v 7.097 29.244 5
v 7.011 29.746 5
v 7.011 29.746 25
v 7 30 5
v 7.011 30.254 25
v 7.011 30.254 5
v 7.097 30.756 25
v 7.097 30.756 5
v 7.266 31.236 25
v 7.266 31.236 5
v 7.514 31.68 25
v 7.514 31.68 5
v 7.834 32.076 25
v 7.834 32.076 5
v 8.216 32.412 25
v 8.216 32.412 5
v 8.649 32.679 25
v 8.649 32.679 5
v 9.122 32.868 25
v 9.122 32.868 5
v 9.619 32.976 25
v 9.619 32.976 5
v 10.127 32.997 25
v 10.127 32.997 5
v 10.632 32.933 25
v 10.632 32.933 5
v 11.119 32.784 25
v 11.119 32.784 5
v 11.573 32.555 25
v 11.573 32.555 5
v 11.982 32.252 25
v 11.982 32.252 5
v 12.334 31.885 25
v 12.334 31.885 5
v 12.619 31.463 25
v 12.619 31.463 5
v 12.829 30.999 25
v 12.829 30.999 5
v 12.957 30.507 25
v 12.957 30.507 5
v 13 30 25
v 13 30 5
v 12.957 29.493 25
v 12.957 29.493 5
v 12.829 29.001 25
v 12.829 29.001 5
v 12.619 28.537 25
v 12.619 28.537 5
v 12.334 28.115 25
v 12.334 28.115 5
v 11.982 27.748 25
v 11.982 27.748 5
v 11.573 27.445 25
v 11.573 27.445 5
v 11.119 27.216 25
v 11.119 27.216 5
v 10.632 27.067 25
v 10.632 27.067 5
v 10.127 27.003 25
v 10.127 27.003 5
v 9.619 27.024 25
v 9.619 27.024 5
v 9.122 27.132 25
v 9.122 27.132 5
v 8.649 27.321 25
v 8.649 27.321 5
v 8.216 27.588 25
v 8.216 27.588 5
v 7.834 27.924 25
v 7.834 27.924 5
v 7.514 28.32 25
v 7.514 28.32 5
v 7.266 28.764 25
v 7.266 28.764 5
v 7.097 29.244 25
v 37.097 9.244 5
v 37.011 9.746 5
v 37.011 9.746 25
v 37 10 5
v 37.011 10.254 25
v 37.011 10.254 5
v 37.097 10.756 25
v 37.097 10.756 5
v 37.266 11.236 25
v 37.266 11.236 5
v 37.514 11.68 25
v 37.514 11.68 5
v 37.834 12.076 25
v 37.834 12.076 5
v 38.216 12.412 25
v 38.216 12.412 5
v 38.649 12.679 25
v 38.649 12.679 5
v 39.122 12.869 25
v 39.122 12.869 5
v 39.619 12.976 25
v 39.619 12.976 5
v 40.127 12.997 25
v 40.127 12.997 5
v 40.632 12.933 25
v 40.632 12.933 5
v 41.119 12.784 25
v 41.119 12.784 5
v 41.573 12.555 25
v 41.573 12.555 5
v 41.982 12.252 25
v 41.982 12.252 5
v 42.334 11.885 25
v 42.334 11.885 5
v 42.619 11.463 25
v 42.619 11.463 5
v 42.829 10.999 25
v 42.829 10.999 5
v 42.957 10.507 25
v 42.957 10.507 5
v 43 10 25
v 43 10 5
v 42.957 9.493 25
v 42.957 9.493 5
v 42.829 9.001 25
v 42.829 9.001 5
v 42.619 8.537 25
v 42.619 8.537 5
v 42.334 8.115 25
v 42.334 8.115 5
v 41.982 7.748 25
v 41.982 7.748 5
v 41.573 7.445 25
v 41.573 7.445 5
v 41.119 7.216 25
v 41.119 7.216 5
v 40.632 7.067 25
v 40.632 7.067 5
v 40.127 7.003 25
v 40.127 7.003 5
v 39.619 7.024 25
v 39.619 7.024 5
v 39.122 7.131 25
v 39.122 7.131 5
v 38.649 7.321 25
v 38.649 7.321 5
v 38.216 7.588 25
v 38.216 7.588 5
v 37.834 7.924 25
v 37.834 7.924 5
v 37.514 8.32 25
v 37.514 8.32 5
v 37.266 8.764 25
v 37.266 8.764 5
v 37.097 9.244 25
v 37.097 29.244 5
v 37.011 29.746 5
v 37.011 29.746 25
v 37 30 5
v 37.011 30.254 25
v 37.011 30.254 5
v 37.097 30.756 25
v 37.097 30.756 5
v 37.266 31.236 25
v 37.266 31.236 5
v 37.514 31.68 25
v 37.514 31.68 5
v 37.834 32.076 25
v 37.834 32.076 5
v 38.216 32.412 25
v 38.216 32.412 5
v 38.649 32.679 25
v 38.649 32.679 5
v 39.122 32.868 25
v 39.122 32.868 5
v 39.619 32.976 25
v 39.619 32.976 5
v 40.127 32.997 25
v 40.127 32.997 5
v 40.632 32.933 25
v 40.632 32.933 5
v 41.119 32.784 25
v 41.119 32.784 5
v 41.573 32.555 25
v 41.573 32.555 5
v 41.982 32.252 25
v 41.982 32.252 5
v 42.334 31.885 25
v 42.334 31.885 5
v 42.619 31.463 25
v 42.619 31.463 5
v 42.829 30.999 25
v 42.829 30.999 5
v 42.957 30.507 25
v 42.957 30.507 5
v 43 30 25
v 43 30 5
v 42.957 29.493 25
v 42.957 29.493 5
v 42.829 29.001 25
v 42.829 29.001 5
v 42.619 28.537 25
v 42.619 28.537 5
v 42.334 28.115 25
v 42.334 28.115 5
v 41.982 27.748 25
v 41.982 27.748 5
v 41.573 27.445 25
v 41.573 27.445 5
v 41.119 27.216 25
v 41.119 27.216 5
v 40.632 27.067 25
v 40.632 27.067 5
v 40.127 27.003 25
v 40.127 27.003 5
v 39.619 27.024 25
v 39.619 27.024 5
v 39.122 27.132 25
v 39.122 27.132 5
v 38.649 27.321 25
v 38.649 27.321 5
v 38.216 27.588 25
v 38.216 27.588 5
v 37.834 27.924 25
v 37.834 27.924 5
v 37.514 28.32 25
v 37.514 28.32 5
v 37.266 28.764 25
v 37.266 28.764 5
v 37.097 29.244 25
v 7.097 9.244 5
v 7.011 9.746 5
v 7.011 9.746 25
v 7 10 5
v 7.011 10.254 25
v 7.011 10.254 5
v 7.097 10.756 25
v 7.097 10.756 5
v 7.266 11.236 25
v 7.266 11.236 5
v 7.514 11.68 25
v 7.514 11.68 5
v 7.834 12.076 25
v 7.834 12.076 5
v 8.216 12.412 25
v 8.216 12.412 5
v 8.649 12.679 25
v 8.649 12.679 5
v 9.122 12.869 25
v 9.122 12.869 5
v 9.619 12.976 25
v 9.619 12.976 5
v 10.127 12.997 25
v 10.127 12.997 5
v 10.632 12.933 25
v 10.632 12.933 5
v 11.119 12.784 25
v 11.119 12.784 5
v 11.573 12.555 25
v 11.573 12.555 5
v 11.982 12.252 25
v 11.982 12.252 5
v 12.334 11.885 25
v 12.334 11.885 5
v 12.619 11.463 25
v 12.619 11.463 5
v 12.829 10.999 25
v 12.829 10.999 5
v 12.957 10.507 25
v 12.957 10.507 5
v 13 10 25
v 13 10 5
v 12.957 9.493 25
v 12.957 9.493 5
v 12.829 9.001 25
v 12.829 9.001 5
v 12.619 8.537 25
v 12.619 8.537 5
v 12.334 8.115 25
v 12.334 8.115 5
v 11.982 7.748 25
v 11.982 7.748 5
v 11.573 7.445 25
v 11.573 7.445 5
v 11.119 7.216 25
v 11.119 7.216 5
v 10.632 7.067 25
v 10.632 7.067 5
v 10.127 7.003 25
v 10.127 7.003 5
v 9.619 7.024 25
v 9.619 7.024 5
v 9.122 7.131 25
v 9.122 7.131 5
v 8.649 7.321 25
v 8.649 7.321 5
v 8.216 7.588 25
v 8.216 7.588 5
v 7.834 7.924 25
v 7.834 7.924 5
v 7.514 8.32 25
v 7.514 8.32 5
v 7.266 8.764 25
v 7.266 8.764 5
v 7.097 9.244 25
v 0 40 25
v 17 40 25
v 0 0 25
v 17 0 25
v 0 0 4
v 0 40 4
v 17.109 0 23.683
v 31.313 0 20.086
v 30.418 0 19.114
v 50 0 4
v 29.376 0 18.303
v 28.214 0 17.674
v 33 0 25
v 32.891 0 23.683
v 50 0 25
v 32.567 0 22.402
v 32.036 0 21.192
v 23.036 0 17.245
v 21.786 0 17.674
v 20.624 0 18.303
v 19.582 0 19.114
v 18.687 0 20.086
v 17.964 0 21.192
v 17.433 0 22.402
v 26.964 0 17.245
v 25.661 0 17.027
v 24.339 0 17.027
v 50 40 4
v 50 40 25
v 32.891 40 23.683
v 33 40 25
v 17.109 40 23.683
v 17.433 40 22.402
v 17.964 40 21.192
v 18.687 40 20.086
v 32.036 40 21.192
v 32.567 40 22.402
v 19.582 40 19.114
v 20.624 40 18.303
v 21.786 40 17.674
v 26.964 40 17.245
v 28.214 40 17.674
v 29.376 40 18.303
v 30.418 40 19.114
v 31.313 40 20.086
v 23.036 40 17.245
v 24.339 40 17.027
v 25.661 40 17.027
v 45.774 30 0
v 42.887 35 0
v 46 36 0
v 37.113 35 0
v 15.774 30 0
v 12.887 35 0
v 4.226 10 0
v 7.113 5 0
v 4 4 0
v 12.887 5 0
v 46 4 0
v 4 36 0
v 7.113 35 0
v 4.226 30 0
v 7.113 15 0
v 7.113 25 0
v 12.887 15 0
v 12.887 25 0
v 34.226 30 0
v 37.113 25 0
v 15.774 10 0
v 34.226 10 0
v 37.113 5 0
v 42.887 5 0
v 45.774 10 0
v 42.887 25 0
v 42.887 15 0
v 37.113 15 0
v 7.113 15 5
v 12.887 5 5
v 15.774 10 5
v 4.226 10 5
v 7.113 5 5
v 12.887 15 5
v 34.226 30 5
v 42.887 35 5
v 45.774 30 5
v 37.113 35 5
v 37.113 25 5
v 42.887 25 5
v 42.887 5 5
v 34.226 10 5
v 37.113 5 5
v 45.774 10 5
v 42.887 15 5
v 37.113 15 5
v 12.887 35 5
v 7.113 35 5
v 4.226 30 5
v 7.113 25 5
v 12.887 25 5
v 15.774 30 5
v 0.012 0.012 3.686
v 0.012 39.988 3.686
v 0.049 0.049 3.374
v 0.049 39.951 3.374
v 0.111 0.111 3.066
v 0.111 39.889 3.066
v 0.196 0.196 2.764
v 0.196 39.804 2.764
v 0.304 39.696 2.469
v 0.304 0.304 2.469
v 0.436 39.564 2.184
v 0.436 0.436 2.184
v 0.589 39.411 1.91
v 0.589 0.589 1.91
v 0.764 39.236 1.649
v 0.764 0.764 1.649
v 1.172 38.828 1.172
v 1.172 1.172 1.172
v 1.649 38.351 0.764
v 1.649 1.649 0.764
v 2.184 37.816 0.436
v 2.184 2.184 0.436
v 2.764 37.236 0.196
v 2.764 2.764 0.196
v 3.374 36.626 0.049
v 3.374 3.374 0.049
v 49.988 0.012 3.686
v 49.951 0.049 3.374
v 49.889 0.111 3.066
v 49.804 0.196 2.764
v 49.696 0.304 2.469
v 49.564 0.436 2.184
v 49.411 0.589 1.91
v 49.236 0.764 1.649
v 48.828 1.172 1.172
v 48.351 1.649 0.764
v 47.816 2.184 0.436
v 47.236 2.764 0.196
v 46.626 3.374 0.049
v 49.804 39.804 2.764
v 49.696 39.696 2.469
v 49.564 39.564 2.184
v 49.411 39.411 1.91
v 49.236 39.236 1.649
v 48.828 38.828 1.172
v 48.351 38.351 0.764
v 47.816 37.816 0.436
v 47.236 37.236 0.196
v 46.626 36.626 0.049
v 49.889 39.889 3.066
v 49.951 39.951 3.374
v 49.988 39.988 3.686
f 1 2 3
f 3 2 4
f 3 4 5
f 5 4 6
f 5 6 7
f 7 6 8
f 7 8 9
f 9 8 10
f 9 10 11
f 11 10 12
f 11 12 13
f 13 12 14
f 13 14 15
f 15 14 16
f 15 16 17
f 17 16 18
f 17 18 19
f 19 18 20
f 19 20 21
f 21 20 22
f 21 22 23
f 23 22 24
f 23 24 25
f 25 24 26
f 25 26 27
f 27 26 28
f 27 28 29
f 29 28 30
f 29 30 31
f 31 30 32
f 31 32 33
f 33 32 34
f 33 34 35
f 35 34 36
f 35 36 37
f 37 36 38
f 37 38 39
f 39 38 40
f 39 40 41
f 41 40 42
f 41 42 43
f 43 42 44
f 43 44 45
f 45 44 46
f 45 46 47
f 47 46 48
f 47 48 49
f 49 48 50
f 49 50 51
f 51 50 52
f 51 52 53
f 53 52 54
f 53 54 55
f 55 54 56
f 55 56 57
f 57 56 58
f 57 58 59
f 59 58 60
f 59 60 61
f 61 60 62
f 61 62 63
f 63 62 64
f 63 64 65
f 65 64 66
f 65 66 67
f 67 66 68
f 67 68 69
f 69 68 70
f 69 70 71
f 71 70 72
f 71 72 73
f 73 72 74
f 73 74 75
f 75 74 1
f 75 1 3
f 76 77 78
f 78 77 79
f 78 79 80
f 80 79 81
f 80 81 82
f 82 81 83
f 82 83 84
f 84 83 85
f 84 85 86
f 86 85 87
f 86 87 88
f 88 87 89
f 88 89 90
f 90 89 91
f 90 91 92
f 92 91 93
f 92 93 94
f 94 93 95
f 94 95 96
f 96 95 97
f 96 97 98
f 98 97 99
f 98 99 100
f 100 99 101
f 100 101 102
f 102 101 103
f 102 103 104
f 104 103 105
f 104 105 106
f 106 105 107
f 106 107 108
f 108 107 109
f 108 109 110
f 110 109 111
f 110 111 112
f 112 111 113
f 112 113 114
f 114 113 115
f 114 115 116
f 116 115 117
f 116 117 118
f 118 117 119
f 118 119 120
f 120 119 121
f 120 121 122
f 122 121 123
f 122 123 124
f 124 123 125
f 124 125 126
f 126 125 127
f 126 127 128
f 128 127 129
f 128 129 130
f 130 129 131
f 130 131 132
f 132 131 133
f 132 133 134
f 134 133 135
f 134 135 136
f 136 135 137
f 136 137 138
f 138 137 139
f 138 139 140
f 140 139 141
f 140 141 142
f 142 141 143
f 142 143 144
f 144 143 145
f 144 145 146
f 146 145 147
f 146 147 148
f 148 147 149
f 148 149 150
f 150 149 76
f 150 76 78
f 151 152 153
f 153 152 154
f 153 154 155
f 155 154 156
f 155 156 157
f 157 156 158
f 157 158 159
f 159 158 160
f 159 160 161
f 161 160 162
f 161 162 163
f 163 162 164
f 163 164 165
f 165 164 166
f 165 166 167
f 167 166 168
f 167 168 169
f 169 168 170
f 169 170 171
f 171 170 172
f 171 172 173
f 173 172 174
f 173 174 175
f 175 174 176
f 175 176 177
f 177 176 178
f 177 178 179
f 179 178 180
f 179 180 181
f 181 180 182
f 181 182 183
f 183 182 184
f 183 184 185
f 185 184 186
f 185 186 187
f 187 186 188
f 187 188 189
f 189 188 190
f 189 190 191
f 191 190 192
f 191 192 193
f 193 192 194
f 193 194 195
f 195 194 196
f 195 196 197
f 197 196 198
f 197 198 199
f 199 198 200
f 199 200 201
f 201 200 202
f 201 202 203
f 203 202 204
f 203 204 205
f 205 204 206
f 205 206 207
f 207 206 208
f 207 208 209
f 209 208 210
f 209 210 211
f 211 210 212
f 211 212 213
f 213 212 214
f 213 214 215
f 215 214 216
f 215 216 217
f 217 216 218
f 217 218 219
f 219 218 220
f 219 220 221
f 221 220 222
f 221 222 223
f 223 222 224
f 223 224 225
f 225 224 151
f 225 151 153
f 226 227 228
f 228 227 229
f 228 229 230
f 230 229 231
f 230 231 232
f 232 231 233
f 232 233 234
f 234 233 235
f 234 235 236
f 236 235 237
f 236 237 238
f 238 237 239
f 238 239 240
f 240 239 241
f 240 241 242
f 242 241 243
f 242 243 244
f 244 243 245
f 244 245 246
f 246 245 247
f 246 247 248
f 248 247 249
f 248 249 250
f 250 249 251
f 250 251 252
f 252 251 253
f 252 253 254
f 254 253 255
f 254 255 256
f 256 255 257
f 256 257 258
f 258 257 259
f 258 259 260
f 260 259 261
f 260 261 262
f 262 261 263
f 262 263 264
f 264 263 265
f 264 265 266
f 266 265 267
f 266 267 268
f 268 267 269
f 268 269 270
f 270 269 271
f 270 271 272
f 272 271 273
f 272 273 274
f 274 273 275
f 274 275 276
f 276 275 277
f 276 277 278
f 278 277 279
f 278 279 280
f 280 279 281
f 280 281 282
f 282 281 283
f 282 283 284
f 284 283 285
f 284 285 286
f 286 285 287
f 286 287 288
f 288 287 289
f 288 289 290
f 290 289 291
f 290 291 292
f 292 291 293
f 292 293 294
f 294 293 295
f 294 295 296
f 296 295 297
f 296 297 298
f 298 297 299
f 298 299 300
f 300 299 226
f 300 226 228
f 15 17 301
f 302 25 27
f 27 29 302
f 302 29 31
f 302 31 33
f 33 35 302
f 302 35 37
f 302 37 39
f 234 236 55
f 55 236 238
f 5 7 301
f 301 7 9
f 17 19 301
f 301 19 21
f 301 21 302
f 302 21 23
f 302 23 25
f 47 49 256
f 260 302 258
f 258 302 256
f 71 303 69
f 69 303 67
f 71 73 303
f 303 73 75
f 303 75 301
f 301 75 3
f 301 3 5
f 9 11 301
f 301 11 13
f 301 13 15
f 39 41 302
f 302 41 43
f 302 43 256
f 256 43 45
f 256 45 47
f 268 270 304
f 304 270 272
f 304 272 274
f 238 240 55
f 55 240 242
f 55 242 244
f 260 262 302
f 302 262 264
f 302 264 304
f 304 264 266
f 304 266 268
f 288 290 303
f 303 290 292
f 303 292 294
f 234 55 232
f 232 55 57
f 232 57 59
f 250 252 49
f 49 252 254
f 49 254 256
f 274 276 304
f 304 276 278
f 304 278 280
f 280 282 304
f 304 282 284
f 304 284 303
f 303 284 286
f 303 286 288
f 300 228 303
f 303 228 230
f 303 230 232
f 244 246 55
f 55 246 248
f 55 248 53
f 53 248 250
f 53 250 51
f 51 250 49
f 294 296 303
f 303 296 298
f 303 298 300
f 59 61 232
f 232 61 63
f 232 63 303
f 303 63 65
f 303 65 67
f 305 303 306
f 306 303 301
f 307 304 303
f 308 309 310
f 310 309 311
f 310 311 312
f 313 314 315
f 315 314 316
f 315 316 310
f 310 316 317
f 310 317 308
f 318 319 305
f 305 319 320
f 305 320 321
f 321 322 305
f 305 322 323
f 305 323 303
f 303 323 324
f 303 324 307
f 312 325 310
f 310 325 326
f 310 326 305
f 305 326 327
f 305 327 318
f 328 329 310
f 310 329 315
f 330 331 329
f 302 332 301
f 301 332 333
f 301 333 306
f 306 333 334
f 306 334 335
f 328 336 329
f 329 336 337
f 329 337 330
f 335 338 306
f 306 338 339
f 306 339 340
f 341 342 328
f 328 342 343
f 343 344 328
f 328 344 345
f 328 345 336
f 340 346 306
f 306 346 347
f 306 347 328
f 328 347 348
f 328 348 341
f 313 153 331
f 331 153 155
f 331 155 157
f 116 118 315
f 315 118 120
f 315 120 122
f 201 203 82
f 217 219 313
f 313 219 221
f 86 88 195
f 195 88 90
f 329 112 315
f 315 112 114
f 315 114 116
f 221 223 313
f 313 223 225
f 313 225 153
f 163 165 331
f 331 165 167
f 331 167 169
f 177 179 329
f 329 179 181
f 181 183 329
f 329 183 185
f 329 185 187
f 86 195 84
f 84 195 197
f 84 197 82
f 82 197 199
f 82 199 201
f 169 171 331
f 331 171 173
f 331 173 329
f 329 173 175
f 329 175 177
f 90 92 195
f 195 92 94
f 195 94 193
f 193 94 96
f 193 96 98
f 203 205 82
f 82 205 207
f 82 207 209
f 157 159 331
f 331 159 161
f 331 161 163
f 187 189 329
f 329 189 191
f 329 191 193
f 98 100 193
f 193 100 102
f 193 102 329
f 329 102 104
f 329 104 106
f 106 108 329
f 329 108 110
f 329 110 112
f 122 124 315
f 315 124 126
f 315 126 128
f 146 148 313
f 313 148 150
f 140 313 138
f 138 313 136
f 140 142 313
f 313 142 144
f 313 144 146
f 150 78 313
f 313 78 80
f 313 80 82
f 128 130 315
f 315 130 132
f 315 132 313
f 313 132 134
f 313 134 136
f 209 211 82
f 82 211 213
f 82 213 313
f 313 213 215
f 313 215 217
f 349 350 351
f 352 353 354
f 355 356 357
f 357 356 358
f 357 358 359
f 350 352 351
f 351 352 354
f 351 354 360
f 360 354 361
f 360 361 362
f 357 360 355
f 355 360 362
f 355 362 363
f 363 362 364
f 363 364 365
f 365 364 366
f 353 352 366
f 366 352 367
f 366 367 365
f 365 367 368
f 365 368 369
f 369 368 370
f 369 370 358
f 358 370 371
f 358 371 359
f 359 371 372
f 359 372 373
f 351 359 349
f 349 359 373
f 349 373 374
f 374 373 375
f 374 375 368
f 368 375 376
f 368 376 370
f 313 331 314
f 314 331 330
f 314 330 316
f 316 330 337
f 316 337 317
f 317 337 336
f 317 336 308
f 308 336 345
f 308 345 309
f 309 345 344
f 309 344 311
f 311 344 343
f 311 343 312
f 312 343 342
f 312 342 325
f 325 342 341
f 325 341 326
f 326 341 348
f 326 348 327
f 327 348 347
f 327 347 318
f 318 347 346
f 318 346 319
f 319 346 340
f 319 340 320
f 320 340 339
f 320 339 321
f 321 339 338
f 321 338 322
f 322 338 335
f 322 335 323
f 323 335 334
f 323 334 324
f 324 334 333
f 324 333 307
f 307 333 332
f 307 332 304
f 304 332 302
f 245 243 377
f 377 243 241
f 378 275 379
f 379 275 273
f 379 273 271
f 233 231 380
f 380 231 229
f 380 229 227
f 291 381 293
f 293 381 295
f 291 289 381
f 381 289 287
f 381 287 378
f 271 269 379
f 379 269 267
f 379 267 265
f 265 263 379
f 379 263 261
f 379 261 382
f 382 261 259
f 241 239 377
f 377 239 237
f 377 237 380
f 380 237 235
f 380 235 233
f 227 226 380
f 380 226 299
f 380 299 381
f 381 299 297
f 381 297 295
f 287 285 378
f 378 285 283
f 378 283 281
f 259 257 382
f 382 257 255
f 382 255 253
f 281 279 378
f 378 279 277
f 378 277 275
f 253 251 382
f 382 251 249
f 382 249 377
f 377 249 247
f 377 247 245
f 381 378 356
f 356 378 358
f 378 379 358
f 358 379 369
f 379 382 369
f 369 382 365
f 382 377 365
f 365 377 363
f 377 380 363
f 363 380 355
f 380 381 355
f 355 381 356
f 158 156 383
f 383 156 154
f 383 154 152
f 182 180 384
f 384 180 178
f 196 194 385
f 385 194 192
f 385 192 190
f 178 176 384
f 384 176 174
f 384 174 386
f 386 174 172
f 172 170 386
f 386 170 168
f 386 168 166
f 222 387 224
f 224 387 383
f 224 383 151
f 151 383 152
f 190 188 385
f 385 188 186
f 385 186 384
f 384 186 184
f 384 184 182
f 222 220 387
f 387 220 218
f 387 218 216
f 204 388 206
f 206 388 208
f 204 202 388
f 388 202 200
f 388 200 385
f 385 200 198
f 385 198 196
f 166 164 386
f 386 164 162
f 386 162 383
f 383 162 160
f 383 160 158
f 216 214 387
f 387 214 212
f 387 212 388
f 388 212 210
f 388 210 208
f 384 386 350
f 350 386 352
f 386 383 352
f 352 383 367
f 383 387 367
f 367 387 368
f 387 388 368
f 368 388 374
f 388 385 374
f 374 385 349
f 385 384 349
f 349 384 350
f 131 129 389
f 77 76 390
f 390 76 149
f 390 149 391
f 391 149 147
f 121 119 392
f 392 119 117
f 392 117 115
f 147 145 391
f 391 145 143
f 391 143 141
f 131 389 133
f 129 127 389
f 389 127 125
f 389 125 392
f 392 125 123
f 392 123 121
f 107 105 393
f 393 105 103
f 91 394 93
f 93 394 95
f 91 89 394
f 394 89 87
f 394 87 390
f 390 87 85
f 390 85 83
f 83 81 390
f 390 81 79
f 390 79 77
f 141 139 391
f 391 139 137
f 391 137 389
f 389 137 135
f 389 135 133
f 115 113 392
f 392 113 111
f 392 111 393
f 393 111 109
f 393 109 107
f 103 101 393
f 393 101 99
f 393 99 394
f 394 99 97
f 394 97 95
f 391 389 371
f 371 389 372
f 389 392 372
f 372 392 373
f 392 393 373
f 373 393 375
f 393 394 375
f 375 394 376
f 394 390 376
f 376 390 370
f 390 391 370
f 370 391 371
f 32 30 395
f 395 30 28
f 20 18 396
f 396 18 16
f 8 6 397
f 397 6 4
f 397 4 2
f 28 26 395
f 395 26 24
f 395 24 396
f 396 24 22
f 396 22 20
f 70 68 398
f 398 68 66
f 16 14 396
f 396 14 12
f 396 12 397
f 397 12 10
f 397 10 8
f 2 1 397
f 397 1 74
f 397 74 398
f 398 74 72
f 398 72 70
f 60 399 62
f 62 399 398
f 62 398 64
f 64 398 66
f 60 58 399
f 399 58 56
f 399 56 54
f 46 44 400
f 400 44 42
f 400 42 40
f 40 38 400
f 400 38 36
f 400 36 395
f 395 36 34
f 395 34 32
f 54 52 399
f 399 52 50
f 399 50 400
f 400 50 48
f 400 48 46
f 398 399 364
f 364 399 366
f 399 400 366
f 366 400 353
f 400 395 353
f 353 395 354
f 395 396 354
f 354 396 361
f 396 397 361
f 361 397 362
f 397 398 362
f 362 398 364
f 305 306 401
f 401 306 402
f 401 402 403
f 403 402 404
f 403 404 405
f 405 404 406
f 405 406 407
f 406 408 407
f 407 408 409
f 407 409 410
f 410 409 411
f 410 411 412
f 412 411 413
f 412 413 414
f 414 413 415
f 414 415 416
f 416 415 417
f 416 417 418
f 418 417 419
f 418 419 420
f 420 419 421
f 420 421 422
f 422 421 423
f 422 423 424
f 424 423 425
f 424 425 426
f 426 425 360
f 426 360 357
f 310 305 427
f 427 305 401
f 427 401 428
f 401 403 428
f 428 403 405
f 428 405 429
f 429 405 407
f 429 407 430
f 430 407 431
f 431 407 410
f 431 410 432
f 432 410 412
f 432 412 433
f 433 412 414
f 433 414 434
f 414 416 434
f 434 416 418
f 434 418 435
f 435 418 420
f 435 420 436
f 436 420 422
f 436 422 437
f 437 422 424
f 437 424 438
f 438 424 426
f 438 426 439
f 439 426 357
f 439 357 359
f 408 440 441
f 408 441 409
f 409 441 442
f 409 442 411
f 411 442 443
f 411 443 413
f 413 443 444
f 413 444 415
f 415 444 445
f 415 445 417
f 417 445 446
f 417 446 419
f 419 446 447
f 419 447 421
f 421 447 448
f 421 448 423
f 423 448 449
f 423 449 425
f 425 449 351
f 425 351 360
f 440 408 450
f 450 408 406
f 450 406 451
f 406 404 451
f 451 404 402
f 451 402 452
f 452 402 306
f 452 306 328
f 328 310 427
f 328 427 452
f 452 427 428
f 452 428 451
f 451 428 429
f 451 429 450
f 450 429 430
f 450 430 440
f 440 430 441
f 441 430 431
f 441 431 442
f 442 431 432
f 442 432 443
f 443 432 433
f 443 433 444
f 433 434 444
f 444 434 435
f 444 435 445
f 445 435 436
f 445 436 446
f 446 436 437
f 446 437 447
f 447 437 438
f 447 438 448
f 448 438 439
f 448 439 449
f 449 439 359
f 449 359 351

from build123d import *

# Parameters (mm, degrees)
SKETCH1_W           = 50
SKETCH1_H           = 40
BOSS_EXTRUDE1_DEPTH = 25
SKETCH2_R           = 8
CUT_EXTRUDE1_DEPTH  = 43
SKETCH3_R           = 3
CUT_EXTRUDE2_DEPTH  = 43
CUT_EXTRUDE3_DEPTH  = 5
FILLET1_R           = 4


with BuildPart() as part:
    # Sketch1 → Boss-Extrude1 (new body)
    with BuildSketch(Plane.XY):
        with Locations((25, 20)):
            Rectangle(SKETCH1_W, SKETCH1_H)
    extrude(amount=BOSS_EXTRUDE1_DEPTH)

    # Sketch2 → Cut-Extrude1 (cut)
    with BuildSketch(Plane(origin=(0, 40, 0), x_dir=(1, 0, 0), z_dir=(0, 1, 0))):
        with Locations((25, -25)):
            Circle(SKETCH2_R)
    extrude(amount=-CUT_EXTRUDE1_DEPTH, mode=Mode.SUBTRACT)

    # Sketch3 → Cut-Extrude2 (cut)
    with BuildSketch(Plane.XY.offset(25)):
        with Locations((10, 30)):
            Circle(SKETCH3_R)
        with Locations((10, 10)):
            Circle(SKETCH3_R)
        with Locations((40, 30)):
            Circle(SKETCH3_R)
        with Locations((40, 10)):
            Circle(SKETCH3_R)
    extrude(amount=-CUT_EXTRUDE2_DEPTH, mode=Mode.SUBTRACT)

    # Sketch4 → Cut-Extrude3 (cut)
    with BuildSketch(Plane(origin=(0, 0, 0), x_dir=(-1, 0, 0), z_dir=(0, 0, -1))):
        Polygon((-7.113248654, 5), (-4.226497308, 10), (-7.113248654, 15), (-12.886751346, 15), (-15.773502692, 10), (-12.886751346, 5), align=None)
        Polygon((-37.113248654, 5), (-34.226497308, 10), (-37.113248654, 15), (-42.886751346, 15), (-45.773502692, 10), (-42.886751346, 5), align=None)
        Polygon((-7.113248654, 25), (-4.226497308, 30), (-7.113248654, 35), (-12.886751346, 35), (-15.773502692, 30), (-12.886751346, 25), align=None)
        Polygon((-42.886751346, 35), (-45.773502692, 30), (-42.886751346, 25), (-37.113248654, 25), (-34.226497308, 30), (-37.113248654, 35), align=None)
    extrude(amount=-CUT_EXTRUDE3_DEPTH, mode=Mode.SUBTRACT)

    # Fillet1
    fillet1_edges = [part.edges().sort_by_distance(p)[0] for p in [
        (25, 40, 0),
        (50, 20, 0),
        (25, 0, 0),
        (0, 20, 0),
    ]]
    fillet(fillet1_edges, radius=FILLET1_R)


solid = part.part
